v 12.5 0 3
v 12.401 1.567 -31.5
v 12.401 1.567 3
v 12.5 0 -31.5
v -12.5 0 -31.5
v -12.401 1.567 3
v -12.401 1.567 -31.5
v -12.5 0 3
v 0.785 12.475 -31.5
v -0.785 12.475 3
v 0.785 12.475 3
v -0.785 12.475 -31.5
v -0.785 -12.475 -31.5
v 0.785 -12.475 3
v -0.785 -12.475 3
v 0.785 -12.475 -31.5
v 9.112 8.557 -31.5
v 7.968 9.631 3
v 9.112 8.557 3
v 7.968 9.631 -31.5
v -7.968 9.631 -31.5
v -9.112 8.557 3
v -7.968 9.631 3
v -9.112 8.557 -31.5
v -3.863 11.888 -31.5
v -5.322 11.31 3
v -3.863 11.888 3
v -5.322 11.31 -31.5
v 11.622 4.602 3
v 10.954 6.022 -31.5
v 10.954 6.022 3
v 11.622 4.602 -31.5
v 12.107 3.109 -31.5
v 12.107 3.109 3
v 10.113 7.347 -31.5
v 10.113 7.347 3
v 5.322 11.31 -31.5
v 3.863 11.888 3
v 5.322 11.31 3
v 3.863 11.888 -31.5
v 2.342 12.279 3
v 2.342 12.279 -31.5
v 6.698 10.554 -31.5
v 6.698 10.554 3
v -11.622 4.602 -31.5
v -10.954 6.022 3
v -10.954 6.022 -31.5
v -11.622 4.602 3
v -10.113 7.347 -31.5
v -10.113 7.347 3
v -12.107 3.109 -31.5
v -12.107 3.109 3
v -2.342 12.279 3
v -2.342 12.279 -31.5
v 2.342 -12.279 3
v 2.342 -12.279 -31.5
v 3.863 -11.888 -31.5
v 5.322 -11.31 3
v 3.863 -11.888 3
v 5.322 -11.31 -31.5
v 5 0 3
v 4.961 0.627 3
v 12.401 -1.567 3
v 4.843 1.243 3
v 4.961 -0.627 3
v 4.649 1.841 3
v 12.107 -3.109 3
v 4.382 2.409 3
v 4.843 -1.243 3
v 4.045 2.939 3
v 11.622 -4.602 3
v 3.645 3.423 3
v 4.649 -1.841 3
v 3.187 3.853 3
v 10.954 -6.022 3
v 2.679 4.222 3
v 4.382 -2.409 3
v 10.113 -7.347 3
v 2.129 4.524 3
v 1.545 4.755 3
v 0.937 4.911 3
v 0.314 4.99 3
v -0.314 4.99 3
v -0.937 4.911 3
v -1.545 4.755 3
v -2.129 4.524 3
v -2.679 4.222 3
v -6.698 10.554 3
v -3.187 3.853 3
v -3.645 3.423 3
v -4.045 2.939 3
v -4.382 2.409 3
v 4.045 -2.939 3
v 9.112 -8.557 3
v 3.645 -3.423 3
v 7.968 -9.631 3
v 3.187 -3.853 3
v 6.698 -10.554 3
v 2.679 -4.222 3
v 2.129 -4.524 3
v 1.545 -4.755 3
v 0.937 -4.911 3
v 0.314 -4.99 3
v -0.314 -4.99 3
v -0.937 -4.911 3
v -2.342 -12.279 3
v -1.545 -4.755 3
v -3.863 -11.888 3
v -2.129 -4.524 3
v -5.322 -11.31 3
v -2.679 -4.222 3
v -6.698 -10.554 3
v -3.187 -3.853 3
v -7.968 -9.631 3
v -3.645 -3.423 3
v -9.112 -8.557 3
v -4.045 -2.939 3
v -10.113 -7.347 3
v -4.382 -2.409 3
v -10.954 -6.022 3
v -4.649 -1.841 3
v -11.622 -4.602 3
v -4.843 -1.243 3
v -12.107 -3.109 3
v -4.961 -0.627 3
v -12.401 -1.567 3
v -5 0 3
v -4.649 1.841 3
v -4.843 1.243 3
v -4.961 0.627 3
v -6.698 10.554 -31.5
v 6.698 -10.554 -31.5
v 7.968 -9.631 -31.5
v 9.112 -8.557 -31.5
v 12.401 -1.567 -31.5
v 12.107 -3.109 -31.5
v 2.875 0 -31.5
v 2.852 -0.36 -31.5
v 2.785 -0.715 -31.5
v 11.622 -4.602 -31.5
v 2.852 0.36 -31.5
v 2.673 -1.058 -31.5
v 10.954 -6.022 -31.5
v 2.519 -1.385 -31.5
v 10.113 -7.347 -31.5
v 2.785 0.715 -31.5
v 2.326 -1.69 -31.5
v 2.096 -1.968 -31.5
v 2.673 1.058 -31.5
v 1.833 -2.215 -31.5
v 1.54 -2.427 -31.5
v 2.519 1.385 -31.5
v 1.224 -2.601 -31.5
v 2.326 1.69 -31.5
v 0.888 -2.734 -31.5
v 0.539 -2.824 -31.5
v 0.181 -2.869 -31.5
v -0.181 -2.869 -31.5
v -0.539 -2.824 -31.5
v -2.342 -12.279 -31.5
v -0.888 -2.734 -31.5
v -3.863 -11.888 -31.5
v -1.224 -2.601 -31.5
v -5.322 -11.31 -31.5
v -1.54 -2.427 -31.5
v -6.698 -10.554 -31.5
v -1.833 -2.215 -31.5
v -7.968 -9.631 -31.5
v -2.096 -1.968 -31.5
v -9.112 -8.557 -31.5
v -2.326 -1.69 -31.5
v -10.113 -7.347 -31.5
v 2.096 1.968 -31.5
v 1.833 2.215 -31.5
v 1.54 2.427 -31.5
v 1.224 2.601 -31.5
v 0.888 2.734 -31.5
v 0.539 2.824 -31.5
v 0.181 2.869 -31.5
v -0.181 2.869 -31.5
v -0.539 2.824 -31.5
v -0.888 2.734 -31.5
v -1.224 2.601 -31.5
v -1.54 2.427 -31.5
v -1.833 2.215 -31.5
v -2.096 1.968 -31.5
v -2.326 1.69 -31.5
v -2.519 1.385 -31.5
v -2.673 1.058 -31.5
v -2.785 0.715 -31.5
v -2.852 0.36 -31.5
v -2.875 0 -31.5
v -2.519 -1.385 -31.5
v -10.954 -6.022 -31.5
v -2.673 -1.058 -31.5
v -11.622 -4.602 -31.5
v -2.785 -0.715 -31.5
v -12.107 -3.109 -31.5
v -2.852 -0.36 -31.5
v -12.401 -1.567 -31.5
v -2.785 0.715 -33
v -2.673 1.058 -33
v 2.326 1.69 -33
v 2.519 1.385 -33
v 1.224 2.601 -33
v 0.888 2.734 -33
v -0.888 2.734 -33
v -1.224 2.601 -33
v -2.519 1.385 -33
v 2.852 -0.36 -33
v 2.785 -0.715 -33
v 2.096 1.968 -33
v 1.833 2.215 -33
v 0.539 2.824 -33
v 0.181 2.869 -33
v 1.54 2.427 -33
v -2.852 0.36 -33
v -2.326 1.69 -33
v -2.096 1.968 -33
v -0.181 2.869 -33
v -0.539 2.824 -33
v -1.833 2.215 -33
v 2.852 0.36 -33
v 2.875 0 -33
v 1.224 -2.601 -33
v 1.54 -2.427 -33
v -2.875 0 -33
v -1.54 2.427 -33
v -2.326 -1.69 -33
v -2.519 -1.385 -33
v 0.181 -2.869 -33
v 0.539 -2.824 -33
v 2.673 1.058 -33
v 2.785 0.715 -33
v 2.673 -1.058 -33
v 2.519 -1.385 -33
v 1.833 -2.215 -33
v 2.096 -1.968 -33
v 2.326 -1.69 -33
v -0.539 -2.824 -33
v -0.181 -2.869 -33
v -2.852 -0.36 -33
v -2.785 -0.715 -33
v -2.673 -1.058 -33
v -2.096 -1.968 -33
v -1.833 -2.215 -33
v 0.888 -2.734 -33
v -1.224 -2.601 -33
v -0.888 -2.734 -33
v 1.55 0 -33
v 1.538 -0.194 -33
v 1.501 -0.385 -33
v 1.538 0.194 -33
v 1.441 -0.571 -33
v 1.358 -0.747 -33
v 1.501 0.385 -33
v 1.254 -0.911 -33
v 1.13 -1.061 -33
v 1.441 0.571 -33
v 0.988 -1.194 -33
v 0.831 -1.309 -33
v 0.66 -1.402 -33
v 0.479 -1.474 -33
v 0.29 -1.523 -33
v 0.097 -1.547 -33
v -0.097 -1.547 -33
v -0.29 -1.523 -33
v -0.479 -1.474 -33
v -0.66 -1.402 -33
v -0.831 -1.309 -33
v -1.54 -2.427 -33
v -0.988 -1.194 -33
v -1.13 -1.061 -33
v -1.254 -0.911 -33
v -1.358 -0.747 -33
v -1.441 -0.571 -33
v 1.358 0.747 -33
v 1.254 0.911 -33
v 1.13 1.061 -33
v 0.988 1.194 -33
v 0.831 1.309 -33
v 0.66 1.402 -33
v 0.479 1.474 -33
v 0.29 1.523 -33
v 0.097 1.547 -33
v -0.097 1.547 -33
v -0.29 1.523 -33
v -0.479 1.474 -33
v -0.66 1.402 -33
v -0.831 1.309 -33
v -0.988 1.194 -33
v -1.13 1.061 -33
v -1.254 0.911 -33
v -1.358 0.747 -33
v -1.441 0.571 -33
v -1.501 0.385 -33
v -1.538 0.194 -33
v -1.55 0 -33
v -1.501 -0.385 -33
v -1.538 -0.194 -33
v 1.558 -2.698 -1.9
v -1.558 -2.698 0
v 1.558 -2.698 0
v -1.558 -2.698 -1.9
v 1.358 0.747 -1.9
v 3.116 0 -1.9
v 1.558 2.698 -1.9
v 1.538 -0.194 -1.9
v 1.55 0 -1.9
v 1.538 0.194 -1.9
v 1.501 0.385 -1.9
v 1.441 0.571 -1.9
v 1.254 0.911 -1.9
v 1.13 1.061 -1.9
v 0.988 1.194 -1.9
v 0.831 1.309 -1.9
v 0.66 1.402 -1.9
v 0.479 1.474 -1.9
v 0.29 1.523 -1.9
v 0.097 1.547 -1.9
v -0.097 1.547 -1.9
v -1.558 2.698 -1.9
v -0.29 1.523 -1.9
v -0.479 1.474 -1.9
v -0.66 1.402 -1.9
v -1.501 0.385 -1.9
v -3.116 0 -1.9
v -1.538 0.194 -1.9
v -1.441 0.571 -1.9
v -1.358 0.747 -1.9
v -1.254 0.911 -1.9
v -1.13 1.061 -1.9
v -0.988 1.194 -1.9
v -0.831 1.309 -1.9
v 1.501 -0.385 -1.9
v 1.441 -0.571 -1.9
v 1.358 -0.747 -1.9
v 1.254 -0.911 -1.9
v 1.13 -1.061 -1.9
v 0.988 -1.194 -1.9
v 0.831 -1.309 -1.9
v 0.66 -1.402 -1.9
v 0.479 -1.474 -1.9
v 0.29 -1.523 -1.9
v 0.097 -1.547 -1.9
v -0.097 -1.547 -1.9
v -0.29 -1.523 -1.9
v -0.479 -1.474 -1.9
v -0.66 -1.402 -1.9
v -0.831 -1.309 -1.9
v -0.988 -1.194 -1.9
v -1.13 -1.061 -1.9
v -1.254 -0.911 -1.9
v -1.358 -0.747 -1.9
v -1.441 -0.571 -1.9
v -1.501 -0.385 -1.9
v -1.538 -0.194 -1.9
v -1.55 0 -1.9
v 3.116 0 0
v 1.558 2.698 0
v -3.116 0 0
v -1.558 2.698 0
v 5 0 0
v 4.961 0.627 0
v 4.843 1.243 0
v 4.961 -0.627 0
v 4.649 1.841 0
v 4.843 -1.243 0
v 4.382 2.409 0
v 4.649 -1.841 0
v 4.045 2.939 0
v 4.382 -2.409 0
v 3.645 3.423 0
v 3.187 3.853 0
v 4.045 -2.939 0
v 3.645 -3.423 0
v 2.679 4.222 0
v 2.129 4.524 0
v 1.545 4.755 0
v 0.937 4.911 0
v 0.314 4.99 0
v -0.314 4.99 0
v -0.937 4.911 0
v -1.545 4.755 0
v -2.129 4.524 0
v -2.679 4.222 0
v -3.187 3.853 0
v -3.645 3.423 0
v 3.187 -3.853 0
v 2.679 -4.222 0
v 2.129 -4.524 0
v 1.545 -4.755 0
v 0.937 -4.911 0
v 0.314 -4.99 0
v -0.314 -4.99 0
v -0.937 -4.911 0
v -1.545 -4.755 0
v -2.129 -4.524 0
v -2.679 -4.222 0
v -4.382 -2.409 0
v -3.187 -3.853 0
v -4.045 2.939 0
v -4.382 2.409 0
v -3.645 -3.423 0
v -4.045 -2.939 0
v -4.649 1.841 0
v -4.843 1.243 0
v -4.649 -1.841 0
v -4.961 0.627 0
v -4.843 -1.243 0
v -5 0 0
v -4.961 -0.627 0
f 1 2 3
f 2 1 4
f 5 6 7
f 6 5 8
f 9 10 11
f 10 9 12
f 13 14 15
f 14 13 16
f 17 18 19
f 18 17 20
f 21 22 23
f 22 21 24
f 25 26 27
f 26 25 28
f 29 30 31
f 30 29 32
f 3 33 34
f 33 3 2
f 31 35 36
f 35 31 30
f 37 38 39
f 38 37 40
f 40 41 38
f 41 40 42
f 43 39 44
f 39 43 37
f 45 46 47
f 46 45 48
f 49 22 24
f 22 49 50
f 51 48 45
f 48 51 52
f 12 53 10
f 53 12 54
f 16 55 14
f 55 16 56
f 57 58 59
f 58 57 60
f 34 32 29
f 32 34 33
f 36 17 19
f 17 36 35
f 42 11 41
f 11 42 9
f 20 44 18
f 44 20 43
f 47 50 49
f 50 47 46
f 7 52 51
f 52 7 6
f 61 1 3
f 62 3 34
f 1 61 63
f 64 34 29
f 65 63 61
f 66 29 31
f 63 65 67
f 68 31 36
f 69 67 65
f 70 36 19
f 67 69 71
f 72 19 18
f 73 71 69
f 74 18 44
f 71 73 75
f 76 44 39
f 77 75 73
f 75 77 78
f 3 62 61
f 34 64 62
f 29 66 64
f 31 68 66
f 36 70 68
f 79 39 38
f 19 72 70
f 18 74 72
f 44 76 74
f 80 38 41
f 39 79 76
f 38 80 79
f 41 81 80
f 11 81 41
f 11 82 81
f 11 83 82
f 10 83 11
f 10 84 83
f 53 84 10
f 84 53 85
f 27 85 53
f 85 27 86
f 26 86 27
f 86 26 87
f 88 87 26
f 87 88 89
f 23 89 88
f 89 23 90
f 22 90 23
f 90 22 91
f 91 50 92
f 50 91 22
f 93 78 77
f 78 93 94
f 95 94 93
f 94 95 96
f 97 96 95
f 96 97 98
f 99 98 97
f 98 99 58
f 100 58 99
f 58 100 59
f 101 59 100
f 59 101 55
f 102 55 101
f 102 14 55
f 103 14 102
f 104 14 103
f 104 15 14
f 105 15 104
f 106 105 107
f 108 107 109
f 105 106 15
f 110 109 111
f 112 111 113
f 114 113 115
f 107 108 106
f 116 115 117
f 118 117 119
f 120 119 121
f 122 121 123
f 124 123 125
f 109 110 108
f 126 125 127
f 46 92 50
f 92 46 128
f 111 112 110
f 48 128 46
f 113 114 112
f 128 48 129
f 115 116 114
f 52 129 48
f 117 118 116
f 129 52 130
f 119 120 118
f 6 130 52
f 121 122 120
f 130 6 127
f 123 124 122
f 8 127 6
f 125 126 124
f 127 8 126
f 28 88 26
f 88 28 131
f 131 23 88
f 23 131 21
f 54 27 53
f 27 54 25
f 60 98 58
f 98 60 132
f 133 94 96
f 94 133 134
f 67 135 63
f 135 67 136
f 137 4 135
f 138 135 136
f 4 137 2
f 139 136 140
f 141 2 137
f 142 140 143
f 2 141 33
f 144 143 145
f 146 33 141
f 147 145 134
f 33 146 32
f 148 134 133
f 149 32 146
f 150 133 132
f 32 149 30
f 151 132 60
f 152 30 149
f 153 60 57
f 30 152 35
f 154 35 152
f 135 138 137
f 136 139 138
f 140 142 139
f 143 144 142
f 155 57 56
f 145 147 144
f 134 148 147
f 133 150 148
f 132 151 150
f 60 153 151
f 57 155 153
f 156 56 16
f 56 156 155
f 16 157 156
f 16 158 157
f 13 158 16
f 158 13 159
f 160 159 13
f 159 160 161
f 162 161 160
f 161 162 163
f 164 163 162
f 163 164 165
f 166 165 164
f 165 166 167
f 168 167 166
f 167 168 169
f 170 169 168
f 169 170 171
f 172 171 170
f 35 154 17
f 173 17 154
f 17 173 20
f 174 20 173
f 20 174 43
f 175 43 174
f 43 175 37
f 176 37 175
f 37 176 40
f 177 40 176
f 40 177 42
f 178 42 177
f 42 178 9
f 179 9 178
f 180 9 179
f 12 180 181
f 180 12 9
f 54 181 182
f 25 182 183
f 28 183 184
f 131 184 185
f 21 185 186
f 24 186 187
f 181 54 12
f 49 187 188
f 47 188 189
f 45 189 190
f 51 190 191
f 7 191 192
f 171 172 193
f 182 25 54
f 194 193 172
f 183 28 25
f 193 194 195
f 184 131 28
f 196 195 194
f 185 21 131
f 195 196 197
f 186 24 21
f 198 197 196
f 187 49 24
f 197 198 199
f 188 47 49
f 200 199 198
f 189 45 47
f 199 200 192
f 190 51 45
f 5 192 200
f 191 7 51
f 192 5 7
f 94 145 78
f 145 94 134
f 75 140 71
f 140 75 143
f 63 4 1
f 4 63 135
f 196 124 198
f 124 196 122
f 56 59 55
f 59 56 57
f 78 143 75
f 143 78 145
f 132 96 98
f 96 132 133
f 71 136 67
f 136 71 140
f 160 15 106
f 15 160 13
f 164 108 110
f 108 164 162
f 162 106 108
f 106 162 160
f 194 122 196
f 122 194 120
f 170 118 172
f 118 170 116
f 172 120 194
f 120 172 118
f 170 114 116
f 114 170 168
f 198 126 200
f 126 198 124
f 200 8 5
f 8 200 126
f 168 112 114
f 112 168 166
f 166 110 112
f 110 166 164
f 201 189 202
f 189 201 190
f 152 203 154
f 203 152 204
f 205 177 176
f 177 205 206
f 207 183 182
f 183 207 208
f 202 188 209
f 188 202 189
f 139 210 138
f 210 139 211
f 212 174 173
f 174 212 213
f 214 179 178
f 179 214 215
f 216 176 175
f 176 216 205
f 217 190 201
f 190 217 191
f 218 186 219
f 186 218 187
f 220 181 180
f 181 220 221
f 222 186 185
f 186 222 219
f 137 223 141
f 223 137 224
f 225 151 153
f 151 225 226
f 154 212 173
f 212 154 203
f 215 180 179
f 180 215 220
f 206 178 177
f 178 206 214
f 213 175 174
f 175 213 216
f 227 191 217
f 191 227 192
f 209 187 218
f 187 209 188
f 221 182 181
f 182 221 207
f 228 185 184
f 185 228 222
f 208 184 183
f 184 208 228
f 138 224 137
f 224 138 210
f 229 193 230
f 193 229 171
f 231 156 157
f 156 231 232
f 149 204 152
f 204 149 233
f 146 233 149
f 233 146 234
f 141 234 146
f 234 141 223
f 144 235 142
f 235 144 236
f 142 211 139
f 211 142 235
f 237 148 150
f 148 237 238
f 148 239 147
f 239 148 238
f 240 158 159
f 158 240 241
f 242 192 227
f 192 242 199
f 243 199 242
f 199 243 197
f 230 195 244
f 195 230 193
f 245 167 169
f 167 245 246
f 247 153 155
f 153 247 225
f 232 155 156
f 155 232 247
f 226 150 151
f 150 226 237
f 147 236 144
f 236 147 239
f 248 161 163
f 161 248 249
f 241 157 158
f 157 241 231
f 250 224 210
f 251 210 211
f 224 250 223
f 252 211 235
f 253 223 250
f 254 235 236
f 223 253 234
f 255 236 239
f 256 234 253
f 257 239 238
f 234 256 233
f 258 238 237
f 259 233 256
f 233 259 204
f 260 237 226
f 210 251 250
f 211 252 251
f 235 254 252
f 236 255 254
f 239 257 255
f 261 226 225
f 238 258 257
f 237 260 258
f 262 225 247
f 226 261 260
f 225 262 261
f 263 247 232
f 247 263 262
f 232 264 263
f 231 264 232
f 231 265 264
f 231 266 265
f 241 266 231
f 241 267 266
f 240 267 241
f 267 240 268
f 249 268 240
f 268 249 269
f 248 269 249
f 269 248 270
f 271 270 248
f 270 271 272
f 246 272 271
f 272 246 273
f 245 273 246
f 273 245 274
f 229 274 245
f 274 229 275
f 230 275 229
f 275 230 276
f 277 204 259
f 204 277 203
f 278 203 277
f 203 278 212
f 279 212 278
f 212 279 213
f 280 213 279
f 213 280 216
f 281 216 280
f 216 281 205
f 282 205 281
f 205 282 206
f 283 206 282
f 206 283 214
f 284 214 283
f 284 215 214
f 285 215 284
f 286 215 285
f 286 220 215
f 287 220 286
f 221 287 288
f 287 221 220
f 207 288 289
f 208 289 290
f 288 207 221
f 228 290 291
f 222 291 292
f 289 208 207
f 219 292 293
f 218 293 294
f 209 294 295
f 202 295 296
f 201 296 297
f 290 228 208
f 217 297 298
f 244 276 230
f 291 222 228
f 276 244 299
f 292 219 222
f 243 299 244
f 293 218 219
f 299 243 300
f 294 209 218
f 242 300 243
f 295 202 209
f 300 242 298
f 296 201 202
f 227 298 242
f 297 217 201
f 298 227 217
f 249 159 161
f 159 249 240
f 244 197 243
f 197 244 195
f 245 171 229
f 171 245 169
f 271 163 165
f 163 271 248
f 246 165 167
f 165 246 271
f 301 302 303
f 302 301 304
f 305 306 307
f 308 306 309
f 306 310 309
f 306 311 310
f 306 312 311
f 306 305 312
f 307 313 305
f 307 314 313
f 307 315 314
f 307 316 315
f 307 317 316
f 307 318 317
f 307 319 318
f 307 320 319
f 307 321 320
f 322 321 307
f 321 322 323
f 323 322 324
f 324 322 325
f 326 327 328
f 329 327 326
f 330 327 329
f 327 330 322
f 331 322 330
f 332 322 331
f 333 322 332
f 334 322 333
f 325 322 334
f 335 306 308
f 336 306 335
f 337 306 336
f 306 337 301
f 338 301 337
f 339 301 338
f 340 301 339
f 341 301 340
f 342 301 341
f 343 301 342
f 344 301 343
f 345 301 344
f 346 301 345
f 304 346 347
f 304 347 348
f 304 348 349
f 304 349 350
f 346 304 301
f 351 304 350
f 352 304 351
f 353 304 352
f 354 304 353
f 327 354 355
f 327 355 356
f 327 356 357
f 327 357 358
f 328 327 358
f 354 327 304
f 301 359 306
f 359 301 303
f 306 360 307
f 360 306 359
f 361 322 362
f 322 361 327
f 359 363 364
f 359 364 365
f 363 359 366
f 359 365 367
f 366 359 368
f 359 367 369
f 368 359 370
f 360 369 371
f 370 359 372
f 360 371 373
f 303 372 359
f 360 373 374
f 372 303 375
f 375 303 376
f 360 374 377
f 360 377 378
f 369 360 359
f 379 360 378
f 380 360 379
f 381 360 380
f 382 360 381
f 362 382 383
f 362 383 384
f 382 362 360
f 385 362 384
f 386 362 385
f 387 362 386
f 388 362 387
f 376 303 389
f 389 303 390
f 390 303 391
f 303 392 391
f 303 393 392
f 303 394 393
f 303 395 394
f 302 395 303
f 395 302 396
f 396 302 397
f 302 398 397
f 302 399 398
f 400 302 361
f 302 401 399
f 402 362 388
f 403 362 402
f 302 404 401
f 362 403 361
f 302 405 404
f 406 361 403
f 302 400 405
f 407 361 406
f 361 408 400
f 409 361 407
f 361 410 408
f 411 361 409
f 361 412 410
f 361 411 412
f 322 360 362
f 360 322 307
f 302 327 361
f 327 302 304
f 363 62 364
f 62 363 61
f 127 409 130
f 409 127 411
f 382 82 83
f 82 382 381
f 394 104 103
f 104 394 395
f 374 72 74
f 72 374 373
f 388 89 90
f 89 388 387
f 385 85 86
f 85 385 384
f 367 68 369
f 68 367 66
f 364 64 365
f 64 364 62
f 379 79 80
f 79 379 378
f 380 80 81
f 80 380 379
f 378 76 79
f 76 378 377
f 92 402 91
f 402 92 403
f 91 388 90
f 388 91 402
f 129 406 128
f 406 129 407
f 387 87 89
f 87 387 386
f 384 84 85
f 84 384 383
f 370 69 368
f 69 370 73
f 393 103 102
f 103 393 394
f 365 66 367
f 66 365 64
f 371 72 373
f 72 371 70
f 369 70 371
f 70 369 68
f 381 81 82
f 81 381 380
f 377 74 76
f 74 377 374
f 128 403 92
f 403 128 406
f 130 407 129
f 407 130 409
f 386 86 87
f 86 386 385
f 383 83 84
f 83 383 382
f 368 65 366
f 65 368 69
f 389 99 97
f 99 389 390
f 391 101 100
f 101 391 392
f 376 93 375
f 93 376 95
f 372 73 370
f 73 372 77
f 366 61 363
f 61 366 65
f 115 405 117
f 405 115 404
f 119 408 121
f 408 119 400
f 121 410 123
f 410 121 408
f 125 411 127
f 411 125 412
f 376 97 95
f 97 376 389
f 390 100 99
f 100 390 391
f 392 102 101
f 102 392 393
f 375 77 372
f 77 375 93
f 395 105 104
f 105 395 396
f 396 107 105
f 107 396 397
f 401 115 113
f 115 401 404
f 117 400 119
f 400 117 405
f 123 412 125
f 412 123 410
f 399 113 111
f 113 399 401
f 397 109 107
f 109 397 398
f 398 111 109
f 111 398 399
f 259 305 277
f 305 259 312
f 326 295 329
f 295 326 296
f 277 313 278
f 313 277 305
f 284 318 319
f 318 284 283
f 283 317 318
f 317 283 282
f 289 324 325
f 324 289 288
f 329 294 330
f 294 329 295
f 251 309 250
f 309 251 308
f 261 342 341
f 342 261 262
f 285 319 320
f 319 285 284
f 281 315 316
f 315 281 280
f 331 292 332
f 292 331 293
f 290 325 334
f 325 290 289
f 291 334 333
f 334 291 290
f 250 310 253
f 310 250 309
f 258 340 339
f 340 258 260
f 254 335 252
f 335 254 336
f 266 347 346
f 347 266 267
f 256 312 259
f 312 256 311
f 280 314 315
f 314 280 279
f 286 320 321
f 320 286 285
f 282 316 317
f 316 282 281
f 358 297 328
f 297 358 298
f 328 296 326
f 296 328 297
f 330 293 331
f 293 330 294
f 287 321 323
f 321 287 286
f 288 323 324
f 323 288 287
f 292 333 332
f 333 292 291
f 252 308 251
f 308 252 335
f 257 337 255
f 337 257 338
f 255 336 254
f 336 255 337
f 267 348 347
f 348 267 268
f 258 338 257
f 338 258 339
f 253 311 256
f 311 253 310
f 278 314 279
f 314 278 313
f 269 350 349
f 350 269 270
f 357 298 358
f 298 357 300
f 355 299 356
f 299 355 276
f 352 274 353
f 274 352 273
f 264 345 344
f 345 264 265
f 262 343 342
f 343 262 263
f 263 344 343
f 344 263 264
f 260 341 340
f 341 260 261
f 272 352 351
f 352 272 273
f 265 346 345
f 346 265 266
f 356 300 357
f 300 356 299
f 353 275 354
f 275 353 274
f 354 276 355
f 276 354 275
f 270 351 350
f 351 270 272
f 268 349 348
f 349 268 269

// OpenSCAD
$fn = 50;

difference() {
	union() {
		translate(v = [0, 0, -31.5]) {
			cylinder(h = 34.5, r = 12.5);
		}
		#translate(v = [0, 0, -33.0]) {
			cylinder(h = 33, r = 2.875);
		}
	}
	union() {
		translate(v = [0, 0, 0]) {
			rotate(a = [0, 0, 0]) {
				difference() {
					union() {
						translate(v = [0, 0, -1.9]) {
							linear_extrude(height = 1.9) {
								polygon(points = [[3.1158, 0.0], [1.5579000000000005, 2.698361953111554], [-1.5578999999999994, 2.6983619531115544], [-3.1158, 3.815754496783323e-16], [-1.5579000000000014, -2.6983619531115535], [1.557899999999998, -2.6983619531115552]]);
							}
						}
					}
					union();
				}
			}
		}
		#cylinder(h = 3, r = 5.0);
		#translate(v = [0, 0, -100.0]) {
			cylinder(h = 200, r = 1.55);
		}
	}
}
